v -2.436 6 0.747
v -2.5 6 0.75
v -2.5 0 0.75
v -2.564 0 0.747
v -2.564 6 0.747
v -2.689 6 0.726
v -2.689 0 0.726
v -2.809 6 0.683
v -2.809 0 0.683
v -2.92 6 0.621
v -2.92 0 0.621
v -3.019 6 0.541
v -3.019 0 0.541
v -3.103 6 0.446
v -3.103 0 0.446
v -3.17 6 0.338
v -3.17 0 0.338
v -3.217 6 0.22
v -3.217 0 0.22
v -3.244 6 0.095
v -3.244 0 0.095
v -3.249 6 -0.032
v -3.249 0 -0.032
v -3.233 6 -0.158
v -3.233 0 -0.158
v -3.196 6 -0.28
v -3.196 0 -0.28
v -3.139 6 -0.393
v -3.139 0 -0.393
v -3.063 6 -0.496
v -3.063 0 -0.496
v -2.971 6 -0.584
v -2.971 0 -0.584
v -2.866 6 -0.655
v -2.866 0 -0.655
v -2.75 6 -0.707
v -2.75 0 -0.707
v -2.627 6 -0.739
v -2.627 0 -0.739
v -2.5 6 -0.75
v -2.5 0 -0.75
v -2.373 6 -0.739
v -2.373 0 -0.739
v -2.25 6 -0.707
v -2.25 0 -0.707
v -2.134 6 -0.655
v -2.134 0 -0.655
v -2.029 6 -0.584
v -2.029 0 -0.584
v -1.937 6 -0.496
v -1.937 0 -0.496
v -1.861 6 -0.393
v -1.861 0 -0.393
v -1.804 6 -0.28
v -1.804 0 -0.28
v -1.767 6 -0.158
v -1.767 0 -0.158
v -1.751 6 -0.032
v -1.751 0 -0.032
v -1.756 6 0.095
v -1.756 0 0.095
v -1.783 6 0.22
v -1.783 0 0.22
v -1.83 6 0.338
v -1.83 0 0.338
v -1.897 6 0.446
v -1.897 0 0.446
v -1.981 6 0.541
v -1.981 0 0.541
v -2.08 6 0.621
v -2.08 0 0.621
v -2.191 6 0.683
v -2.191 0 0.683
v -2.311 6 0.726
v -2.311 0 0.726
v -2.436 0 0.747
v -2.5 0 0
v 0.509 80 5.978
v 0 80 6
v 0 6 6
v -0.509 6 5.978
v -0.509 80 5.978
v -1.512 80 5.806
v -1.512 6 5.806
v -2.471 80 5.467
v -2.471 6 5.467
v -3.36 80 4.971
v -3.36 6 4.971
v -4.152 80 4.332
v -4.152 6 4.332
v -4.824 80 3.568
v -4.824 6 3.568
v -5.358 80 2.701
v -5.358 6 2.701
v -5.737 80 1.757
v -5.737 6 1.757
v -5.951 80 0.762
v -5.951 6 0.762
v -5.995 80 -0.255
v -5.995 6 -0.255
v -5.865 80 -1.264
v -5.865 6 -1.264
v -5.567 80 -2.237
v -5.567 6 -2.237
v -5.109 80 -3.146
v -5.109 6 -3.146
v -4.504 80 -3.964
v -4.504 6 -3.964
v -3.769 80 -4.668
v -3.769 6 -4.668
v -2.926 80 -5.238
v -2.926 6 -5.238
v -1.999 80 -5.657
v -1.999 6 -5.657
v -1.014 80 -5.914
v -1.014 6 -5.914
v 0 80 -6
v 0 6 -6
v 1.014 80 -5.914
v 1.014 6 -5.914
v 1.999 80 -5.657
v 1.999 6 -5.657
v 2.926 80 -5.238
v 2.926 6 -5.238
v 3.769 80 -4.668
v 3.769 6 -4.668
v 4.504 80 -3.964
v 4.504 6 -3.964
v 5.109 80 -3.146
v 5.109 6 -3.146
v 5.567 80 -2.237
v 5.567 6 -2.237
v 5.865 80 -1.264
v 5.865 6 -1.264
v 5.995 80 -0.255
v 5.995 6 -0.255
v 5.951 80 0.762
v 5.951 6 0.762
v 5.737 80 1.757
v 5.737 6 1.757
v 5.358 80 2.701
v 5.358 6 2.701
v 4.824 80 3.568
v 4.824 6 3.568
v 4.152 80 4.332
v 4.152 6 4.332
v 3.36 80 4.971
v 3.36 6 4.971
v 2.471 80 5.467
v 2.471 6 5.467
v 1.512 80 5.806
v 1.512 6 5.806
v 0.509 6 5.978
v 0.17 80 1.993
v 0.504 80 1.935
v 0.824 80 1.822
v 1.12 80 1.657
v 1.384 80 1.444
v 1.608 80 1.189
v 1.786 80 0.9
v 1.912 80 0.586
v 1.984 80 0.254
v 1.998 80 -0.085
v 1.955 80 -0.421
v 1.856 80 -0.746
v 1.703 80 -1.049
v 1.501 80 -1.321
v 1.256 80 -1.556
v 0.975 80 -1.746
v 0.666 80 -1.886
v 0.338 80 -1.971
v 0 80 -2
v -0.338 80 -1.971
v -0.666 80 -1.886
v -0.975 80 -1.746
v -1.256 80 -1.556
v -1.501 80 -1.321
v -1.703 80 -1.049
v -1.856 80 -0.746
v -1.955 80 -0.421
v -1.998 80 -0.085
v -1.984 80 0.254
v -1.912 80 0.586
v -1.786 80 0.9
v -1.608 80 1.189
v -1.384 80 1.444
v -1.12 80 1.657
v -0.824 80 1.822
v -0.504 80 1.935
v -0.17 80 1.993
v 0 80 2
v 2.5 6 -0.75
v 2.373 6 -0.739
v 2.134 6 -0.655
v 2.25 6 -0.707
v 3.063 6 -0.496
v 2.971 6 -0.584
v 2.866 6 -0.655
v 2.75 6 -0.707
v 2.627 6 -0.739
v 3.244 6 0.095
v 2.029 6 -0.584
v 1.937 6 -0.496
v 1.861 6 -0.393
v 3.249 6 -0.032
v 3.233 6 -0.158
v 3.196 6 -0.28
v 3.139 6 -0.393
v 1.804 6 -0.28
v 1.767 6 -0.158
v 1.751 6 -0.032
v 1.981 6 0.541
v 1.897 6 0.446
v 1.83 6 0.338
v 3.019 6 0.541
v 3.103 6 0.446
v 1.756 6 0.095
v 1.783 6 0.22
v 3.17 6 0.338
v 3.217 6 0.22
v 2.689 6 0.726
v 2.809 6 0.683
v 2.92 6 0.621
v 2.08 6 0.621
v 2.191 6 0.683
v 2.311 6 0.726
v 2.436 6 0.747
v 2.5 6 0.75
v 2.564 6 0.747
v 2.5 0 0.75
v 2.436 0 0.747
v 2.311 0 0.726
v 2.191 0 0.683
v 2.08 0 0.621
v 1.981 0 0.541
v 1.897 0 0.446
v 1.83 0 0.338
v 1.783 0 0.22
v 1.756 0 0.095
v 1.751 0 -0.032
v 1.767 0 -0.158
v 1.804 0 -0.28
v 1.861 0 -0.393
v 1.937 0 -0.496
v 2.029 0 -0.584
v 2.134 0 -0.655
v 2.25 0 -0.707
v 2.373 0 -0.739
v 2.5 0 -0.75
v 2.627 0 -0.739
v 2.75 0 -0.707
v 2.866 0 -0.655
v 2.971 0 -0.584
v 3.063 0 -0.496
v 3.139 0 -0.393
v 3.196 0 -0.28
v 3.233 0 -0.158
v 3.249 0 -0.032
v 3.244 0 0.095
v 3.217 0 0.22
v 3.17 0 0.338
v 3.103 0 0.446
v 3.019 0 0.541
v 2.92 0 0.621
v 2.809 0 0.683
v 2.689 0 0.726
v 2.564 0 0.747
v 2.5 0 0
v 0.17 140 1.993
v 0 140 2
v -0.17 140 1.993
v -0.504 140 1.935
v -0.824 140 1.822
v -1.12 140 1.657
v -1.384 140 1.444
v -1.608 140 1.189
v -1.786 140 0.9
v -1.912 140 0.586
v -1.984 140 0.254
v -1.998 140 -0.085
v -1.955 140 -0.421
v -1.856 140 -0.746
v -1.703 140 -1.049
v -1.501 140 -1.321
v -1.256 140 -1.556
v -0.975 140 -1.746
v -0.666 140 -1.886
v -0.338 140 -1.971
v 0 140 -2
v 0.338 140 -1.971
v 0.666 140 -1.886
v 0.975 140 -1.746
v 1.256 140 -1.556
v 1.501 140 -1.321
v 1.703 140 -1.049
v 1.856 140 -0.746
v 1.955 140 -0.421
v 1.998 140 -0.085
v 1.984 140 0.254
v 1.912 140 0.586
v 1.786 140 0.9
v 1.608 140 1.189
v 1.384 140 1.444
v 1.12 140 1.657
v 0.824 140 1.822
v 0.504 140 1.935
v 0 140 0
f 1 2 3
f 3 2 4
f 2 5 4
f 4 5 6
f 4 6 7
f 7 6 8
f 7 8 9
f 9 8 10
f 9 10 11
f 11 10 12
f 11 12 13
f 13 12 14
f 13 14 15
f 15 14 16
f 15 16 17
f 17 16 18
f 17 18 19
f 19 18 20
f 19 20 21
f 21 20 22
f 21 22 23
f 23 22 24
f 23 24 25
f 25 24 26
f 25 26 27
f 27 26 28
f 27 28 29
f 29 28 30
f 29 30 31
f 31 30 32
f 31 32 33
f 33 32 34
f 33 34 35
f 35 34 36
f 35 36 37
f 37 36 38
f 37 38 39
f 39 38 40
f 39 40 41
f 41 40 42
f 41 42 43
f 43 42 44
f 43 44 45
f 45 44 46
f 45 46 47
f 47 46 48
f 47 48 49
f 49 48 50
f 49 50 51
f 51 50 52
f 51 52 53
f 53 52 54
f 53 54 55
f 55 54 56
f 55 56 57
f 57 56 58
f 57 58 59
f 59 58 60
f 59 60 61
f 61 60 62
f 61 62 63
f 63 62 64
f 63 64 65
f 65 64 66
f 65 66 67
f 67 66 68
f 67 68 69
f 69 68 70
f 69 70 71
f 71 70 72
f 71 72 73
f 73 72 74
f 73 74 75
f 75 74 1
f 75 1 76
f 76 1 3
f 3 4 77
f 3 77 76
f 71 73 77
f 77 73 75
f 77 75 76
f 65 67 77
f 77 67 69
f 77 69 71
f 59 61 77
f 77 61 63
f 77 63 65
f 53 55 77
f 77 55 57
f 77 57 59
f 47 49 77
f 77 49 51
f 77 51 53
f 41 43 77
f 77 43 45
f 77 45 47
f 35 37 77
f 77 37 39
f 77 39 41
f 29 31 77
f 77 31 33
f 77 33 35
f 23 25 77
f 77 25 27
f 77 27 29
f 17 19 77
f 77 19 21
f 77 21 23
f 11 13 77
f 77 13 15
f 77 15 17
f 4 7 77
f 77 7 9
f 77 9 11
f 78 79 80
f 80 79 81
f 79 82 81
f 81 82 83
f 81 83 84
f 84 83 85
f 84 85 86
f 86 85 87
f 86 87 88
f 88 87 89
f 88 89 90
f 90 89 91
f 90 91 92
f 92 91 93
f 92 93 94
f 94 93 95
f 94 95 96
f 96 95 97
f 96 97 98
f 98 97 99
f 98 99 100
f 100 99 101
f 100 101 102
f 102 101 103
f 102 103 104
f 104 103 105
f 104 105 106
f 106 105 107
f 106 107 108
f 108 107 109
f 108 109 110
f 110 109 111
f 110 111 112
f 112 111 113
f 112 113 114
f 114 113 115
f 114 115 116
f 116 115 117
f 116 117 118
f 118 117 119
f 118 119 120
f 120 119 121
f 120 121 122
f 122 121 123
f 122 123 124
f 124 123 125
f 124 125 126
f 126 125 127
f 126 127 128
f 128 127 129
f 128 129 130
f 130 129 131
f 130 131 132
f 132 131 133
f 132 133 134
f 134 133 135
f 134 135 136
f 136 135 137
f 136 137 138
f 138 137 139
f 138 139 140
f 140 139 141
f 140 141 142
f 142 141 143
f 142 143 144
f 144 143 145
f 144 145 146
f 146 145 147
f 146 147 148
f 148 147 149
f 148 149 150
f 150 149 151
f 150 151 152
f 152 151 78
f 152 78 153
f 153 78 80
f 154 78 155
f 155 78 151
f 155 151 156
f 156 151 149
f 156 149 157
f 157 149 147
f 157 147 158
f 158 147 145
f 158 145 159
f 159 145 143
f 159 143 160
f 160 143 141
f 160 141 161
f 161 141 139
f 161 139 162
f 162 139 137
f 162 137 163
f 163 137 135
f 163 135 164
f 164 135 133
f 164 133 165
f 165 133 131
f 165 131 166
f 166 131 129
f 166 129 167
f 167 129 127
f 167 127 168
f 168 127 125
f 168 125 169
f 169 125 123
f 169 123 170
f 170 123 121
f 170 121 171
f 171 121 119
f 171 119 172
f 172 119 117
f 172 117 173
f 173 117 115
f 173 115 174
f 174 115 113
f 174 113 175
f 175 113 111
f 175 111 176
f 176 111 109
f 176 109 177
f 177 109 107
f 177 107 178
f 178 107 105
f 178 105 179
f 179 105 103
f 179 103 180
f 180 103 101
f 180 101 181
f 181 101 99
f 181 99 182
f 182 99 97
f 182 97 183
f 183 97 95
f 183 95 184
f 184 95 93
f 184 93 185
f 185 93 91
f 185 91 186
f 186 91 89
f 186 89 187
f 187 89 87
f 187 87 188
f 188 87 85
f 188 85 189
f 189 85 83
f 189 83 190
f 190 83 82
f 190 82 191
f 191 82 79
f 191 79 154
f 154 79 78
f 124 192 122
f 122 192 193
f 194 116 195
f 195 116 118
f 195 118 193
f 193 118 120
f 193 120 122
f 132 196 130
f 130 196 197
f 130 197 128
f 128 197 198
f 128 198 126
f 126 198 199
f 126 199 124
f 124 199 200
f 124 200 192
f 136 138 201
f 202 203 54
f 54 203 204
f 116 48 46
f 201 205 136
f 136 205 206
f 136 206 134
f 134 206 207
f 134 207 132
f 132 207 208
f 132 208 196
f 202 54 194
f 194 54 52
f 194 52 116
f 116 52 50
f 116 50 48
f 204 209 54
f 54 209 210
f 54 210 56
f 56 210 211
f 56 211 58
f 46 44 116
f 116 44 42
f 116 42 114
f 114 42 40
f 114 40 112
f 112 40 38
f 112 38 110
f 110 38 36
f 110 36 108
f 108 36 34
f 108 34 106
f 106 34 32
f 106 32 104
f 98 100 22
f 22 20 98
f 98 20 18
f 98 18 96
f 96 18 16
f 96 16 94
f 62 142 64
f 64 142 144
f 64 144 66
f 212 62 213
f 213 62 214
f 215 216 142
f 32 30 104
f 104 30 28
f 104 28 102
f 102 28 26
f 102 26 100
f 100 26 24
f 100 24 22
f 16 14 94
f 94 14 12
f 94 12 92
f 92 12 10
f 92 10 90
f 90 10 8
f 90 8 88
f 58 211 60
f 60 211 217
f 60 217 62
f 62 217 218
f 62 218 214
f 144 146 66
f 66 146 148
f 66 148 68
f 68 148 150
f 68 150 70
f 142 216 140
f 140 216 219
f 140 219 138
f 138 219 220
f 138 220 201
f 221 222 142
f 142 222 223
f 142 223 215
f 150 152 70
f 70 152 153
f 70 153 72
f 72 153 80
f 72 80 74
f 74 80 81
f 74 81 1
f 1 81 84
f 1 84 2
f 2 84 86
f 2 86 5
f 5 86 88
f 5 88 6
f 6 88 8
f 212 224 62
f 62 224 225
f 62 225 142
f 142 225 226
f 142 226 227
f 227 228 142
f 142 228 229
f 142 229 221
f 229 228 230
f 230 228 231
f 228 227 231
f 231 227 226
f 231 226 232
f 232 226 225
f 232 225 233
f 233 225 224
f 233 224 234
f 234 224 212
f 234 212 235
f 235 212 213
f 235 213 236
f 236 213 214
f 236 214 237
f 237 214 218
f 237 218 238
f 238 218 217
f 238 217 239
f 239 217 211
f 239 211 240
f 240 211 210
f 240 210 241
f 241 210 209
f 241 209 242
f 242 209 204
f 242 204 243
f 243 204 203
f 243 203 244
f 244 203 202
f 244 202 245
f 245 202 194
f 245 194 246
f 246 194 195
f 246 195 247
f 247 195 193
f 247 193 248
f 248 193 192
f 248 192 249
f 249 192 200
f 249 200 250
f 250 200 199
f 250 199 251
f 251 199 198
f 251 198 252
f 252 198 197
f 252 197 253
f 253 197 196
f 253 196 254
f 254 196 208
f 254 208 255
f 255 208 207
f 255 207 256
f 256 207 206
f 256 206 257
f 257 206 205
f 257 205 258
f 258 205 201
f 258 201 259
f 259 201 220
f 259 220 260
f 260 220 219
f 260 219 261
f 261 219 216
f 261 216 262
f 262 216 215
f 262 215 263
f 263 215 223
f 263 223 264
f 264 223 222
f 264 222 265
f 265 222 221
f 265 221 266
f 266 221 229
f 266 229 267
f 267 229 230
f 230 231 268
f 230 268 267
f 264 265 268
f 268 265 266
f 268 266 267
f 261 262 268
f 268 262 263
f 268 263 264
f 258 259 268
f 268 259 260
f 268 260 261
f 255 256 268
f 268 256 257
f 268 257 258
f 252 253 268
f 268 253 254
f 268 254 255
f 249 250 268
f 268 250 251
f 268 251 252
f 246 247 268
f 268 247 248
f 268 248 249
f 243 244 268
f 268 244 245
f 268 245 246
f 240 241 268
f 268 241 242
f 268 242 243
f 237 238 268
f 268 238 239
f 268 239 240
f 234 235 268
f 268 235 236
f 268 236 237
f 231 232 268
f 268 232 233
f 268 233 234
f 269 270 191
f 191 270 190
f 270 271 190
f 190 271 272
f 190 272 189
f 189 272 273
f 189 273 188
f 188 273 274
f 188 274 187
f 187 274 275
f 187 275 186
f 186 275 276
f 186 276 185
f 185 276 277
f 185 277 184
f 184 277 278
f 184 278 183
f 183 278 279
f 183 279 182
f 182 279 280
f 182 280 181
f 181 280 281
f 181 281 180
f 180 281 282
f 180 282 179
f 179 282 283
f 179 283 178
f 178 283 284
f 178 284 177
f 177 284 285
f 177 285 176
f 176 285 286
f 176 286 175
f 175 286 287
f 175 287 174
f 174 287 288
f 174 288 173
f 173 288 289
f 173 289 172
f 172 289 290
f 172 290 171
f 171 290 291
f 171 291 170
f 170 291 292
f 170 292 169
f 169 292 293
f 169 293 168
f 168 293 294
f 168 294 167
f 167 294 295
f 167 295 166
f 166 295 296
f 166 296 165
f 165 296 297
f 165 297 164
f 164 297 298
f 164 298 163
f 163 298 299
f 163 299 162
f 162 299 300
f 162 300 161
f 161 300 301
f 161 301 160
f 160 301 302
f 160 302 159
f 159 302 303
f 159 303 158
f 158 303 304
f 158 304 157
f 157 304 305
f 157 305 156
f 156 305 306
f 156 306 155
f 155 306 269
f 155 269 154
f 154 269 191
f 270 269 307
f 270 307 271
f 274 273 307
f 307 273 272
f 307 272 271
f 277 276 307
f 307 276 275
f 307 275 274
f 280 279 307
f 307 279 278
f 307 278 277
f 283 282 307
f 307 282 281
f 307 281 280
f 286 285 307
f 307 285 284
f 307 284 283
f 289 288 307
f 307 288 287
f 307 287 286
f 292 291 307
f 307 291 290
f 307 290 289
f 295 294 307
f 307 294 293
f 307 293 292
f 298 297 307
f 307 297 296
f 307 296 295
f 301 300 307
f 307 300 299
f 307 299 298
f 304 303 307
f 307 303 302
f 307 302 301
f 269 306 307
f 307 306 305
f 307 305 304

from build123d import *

# Parameters (mm, degrees)
SKETCH1_R   = 0.75
PIN_1_DEPTH = 6
SKETCH2_R   = 0.75
PIN_2_DEPTH = 6
BODY_START  = 6
SKETCH3_R   = 6
BODY_DEPTH  = 74
CABLE_START = 80
SKETCH4_R   = 2
CABLE_DEPTH = 60


with BuildPart() as part:
    # Sketch1 → Pin_1 (new body)
    with BuildSketch(Plane(origin=(0, 0, 0), x_dir=(1, 0, 0), z_dir=(0, 1, 0))):
        with Locations(Location((-2.5, 0, 0), (0, 0, 270))):
            Circle(SKETCH1_R)
    extrude(amount=PIN_1_DEPTH)



with BuildPart() as body_2:
    # Sketch2 → Pin_2 (new body)
    with BuildSketch(Plane(origin=(0, 0, 0), x_dir=(1, 0, 0), z_dir=(0, 1, 0))):
        with Locations(Location((2.5, 0, 0), (0, 0, 270))):
            Circle(SKETCH2_R)
    extrude(amount=PIN_2_DEPTH)


with BuildPart() as part_1:
    add(part.part)

    add(body_2.part)  # Body merges body 2
    # Sketch3 → Body (add)
    with BuildSketch(Plane(origin=(0, 0, 0), x_dir=(1, 0, 0), z_dir=(0, 1, 0)).offset(BODY_START)):
        with Locations(Location((0, 0, 0), (0, 0, 270))):
            Circle(SKETCH3_R)
    extrude(amount=BODY_DEPTH)

    # Sketch4 → Cable (add)
    with BuildSketch(Plane(origin=(0, 0, 0), x_dir=(1, 0, 0), z_dir=(0, 1, 0)).offset(CABLE_START)):
        with Locations(Location((0, 0, 0), (0, 0, 270))):
            Circle(SKETCH4_R)
    extrude(amount=CABLE_DEPTH)


solid = part_1.part
